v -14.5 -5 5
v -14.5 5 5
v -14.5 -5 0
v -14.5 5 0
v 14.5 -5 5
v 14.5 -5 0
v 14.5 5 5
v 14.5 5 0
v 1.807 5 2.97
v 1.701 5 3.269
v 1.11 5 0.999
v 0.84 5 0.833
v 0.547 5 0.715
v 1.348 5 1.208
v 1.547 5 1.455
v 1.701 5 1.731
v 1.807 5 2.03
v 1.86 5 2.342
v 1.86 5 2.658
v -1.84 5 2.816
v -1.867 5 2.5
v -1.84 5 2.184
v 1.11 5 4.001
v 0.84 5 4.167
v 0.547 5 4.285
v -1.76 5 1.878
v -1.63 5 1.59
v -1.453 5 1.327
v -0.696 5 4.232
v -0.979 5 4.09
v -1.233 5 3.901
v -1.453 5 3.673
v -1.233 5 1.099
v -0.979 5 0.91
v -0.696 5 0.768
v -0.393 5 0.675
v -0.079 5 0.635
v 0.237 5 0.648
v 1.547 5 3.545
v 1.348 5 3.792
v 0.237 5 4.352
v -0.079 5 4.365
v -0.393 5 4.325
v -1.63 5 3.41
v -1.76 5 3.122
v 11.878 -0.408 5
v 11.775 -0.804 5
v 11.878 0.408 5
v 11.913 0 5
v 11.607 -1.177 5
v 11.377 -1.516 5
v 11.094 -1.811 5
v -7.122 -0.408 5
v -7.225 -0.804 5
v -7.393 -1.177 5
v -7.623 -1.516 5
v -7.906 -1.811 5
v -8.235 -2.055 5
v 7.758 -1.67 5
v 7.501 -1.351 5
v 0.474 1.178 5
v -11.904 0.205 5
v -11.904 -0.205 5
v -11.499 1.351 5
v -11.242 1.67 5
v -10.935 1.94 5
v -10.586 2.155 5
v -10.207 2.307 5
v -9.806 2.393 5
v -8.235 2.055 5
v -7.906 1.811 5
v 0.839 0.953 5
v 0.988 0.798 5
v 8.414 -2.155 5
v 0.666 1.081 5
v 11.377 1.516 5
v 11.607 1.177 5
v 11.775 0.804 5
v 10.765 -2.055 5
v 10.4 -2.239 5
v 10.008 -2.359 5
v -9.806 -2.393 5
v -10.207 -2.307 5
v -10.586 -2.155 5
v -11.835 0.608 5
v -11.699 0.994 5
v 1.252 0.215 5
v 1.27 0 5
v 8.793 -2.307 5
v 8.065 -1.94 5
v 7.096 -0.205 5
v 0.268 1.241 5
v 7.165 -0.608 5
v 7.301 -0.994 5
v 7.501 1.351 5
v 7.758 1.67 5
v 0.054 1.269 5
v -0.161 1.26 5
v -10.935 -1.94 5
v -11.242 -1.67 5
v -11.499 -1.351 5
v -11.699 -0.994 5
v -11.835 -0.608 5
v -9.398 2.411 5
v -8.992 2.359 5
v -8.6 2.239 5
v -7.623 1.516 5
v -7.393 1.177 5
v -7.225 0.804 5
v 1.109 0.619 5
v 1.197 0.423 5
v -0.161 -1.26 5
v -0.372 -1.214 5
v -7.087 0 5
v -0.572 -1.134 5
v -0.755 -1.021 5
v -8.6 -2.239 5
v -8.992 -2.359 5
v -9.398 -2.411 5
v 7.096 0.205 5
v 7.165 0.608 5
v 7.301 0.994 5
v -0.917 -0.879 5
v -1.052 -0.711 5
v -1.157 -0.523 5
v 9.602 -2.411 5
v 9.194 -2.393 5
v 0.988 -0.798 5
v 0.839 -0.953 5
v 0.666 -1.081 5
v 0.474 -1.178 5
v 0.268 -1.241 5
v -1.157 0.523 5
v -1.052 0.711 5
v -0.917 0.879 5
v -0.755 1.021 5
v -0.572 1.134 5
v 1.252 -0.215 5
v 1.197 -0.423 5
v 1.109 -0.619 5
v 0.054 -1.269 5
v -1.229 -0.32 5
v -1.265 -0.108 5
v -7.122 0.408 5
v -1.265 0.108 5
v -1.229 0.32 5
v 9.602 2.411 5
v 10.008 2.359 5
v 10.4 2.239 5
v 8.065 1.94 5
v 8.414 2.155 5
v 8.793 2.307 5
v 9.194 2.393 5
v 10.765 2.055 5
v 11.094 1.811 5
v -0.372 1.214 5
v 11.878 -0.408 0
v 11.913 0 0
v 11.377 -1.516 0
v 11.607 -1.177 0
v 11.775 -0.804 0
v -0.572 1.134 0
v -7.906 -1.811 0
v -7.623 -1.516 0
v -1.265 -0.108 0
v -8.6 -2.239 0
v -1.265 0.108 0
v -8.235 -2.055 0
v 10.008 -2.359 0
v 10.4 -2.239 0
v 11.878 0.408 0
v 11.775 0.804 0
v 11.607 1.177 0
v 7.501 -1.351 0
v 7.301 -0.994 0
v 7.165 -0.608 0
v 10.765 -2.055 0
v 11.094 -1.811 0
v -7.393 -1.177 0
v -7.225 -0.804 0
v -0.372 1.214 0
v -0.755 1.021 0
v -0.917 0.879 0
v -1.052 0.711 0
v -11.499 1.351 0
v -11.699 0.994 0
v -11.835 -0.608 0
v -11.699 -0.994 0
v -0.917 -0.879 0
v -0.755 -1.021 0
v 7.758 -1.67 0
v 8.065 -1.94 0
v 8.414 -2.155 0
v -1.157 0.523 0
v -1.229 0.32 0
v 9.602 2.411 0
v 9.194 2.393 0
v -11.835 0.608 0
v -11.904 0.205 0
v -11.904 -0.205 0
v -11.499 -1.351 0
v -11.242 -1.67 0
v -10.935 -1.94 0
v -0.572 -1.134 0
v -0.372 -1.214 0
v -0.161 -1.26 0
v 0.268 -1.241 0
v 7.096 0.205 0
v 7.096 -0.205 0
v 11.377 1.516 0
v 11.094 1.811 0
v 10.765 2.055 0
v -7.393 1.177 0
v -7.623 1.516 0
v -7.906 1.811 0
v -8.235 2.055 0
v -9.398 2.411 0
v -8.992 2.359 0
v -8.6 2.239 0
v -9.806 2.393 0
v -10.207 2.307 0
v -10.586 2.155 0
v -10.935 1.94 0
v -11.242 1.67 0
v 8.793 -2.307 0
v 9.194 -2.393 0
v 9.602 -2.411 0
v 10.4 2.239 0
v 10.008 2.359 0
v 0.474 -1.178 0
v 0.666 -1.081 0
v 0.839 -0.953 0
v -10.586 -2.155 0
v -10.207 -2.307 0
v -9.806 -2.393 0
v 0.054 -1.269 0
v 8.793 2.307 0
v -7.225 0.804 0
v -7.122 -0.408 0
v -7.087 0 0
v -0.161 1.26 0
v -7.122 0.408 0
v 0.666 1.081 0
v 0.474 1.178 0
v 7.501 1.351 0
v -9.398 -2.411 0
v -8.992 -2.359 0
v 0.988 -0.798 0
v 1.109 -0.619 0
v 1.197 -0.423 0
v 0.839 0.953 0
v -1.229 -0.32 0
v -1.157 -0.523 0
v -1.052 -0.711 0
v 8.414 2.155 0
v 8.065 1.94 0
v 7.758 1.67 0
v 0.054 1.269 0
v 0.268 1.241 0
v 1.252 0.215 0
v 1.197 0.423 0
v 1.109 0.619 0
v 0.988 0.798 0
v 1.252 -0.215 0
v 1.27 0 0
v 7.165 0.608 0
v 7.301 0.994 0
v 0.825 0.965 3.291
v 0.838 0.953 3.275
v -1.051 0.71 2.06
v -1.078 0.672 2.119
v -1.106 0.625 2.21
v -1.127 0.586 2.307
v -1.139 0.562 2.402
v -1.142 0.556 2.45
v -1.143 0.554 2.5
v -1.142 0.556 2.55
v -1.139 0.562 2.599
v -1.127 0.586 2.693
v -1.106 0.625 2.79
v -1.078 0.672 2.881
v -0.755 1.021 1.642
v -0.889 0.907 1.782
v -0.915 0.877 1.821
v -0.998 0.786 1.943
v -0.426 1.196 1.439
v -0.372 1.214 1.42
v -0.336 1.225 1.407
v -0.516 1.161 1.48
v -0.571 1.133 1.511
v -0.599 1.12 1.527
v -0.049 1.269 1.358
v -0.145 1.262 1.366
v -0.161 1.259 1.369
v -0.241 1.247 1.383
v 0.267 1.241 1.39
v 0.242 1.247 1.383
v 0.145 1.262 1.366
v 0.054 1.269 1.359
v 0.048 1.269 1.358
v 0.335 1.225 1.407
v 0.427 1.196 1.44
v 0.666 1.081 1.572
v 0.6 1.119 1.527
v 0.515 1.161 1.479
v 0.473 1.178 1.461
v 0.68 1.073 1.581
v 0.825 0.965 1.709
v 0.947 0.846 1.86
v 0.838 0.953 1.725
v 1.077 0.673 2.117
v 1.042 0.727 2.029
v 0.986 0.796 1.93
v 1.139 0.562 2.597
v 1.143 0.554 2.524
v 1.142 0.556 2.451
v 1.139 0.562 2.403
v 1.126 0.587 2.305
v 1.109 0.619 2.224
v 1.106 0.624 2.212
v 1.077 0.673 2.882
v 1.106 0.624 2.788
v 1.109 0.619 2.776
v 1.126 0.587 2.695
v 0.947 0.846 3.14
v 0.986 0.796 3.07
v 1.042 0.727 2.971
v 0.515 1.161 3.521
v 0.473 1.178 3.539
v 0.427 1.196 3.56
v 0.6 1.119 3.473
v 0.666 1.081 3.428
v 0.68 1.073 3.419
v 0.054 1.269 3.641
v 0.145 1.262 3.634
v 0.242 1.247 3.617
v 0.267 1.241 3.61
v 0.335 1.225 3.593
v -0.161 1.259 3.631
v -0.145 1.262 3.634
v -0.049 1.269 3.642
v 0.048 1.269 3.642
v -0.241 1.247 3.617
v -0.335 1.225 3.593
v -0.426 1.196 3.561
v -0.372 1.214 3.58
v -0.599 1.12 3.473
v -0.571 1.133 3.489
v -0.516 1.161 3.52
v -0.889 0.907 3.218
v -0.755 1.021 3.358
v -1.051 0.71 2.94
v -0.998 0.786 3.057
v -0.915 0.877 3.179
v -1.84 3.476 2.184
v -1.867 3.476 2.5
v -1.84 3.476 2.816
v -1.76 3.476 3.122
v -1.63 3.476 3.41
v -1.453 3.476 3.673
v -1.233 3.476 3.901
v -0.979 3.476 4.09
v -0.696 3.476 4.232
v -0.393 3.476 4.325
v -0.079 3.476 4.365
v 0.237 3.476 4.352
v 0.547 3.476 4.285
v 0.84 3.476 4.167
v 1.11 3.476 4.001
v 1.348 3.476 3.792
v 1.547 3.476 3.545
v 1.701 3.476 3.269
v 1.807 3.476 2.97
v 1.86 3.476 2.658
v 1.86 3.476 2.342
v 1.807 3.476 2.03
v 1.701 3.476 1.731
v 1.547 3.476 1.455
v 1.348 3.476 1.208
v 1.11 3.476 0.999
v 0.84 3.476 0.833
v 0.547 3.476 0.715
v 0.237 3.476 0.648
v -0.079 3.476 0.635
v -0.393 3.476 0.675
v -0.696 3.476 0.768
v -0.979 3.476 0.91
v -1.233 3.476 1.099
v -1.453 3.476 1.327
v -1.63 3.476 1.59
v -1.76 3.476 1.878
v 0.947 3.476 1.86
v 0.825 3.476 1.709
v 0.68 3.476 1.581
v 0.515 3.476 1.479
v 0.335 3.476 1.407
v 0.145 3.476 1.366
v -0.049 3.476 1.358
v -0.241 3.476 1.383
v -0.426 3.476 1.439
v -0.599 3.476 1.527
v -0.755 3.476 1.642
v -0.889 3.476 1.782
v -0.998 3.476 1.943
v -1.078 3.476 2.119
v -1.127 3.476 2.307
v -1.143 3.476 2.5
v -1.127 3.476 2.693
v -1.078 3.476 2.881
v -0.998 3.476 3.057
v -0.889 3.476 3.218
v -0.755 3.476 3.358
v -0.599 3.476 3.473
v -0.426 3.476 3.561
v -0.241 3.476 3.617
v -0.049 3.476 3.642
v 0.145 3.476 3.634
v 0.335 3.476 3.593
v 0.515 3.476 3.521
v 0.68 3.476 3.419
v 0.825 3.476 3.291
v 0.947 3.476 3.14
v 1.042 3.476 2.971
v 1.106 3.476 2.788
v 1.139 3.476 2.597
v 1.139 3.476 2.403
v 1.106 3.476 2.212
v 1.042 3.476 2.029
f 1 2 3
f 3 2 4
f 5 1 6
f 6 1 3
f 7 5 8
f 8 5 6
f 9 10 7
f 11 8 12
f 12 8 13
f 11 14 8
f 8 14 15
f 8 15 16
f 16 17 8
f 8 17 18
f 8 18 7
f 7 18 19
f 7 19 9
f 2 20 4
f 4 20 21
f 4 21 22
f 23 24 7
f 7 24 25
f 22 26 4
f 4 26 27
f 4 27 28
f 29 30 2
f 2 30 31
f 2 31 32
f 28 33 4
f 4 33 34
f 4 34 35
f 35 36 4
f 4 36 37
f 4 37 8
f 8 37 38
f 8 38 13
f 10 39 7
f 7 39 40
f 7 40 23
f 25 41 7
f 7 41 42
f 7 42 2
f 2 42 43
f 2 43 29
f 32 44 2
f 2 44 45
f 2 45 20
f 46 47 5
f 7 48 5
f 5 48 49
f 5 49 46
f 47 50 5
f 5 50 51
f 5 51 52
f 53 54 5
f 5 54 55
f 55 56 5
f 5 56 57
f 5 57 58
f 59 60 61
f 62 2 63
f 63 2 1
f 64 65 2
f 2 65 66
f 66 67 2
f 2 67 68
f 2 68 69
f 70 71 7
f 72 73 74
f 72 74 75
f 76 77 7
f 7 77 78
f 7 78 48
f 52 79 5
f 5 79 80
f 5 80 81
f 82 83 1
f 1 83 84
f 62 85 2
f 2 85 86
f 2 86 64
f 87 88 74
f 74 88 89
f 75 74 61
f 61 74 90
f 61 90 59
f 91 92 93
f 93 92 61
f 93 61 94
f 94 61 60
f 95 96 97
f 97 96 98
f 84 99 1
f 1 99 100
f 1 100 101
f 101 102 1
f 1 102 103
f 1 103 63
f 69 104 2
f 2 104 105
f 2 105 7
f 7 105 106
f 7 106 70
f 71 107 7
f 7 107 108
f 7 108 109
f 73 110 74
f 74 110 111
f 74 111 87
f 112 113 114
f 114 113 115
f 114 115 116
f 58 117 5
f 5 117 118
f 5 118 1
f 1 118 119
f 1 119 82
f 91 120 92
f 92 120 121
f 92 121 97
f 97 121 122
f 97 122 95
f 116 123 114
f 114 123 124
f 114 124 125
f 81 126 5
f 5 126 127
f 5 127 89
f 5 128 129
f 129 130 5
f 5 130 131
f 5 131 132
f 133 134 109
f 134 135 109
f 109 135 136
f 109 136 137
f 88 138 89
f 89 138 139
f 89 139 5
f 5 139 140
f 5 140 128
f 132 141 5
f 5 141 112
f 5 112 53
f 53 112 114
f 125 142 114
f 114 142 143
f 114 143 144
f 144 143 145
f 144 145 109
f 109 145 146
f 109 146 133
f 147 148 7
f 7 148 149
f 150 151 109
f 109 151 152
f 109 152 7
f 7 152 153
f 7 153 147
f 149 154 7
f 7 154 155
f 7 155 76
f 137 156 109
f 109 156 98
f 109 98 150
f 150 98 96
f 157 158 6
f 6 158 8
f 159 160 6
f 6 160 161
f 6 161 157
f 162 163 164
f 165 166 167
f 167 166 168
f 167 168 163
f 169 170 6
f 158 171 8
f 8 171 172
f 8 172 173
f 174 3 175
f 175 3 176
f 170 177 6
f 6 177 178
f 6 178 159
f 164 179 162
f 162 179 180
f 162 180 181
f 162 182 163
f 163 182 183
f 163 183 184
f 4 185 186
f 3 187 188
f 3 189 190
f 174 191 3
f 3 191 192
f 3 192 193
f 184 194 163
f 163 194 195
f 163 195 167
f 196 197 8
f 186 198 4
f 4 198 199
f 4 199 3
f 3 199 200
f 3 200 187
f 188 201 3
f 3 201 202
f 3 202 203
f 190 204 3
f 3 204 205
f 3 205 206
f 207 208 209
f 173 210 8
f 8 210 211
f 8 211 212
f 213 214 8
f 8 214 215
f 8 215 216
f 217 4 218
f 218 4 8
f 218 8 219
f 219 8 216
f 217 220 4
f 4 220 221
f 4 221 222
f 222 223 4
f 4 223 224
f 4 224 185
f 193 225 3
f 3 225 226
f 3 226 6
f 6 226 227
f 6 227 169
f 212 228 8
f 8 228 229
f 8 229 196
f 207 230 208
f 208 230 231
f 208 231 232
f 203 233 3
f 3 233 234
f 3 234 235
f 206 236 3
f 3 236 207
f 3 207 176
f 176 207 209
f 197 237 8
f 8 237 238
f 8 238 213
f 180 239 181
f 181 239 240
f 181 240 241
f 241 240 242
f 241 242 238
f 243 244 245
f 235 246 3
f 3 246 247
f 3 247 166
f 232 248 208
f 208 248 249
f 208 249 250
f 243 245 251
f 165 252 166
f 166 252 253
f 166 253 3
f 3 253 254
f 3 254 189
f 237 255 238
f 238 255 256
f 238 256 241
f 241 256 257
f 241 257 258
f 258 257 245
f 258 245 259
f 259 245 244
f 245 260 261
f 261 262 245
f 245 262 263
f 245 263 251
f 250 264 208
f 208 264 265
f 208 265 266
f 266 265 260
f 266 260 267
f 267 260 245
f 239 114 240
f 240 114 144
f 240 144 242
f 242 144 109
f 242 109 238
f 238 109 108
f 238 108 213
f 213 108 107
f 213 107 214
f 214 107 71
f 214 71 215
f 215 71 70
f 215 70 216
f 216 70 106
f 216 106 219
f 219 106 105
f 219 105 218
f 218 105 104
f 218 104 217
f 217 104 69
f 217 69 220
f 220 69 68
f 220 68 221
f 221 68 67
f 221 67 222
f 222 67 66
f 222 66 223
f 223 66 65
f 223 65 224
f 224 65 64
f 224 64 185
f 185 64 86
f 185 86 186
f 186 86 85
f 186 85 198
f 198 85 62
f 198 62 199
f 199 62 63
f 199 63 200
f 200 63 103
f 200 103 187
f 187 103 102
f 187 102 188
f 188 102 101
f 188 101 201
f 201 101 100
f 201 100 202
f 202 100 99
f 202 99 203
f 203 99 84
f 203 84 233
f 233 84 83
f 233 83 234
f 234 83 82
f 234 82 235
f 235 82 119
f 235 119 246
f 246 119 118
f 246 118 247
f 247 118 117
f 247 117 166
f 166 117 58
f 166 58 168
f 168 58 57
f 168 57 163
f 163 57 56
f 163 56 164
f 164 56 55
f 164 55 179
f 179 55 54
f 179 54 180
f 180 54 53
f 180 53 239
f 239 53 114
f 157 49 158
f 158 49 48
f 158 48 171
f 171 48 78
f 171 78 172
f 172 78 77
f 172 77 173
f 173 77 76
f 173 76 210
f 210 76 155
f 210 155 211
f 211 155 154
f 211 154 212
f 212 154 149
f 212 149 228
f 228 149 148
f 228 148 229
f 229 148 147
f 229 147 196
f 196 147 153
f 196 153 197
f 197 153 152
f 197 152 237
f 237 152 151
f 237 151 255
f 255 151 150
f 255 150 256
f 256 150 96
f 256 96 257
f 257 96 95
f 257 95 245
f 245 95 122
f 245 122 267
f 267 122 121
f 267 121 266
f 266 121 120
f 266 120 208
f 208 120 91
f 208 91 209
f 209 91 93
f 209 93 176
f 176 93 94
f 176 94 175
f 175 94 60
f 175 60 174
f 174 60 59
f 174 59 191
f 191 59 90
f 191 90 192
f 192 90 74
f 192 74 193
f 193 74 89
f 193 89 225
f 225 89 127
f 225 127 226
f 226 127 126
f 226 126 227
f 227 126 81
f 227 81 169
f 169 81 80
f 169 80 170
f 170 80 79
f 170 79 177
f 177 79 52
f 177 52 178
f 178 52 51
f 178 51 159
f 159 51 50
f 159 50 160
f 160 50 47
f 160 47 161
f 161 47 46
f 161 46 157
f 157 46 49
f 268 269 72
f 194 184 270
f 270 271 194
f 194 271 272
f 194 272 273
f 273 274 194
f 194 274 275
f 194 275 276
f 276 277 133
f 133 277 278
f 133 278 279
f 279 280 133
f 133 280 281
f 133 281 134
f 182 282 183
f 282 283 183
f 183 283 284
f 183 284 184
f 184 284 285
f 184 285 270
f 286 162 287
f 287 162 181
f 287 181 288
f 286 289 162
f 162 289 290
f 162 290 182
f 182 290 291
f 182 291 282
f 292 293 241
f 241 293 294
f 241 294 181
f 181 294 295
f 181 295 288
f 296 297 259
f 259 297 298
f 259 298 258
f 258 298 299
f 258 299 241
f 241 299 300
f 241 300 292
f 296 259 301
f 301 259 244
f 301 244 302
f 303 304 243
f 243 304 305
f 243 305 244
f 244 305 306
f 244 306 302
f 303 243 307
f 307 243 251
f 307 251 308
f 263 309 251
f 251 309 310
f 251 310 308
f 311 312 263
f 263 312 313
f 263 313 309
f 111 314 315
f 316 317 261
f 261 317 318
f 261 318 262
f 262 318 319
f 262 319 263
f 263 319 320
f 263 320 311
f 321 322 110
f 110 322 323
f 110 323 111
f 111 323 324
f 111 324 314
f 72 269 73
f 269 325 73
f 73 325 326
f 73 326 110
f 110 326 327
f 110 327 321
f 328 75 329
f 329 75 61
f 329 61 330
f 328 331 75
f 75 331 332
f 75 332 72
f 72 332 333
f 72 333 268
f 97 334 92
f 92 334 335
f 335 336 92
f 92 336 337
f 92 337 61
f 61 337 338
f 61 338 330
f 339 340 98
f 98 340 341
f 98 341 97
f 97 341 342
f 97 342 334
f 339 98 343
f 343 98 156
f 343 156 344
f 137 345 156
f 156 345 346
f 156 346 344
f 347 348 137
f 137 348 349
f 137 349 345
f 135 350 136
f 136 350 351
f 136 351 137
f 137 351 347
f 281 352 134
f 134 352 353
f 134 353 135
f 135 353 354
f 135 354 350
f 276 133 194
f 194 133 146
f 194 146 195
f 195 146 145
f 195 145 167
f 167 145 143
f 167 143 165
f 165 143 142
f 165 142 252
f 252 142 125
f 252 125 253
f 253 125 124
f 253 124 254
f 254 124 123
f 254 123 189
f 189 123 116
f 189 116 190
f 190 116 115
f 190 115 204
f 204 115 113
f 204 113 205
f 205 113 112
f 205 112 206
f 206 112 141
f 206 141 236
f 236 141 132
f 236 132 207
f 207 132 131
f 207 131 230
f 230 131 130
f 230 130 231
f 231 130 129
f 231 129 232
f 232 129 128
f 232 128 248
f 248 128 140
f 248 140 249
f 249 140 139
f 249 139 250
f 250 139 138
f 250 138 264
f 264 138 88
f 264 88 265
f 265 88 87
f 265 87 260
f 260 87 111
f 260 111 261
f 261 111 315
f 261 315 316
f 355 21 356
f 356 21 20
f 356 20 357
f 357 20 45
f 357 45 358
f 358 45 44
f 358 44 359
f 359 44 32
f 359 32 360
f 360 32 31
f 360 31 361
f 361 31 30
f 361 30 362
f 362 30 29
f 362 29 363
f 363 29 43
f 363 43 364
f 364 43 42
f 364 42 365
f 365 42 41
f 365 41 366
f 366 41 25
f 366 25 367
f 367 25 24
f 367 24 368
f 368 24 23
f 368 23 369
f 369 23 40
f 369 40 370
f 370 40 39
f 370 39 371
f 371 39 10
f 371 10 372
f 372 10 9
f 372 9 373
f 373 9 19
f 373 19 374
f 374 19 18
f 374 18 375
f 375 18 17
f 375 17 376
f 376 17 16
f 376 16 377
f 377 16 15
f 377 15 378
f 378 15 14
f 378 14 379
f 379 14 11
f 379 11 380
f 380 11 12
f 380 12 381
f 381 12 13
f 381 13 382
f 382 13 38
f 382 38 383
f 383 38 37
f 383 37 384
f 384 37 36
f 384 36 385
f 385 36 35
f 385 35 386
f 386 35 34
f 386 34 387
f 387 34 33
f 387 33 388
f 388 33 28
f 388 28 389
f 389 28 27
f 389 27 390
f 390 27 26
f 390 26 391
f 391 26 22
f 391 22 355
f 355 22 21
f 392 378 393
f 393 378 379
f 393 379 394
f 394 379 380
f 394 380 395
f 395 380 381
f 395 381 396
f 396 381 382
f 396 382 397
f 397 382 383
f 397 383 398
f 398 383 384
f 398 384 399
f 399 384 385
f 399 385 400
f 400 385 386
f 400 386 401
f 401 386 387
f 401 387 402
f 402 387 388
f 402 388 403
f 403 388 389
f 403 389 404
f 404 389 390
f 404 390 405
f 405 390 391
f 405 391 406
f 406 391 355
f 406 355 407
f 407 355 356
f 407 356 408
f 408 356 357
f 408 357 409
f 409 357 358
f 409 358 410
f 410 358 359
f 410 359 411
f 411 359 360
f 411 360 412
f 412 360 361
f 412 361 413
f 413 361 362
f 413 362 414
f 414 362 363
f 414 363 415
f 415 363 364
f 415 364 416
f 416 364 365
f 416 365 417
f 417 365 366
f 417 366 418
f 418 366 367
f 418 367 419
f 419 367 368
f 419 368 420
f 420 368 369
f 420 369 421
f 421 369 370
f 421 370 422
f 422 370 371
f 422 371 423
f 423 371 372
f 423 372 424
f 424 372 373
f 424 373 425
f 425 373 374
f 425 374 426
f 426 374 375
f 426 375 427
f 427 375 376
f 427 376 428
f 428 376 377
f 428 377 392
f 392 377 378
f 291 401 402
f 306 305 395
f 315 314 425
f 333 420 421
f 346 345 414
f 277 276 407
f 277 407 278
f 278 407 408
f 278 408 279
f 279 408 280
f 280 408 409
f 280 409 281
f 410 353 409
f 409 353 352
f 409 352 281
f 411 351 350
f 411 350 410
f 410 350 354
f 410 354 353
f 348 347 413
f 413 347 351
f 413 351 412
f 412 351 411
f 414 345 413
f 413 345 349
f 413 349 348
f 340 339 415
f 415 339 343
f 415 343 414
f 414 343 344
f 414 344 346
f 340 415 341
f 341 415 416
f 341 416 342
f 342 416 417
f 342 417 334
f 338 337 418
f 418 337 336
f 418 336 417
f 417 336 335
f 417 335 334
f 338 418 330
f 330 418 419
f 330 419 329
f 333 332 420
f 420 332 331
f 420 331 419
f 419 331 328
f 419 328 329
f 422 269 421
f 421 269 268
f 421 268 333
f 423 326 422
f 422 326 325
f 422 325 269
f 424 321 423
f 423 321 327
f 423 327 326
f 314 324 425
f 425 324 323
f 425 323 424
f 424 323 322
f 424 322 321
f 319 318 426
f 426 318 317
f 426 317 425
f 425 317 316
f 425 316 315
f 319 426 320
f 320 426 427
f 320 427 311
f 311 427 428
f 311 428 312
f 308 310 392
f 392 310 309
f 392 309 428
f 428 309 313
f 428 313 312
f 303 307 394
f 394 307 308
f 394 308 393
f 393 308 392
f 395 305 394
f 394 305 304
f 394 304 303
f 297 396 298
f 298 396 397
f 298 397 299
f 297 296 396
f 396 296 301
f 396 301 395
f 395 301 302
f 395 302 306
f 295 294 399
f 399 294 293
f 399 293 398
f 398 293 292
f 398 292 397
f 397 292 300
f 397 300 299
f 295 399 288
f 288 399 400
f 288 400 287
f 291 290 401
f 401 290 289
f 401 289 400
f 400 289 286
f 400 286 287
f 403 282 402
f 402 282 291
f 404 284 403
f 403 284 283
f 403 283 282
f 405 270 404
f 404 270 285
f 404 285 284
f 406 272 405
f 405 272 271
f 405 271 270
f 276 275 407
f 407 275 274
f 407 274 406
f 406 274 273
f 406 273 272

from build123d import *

# Parameters (mm, degrees)
SKETCH1_W               = 29
SKETCH1_H               = 10
BOSS_EXTRUDE1_DEPTH     = 5
SKETCH2_R               = 2.413
CUT_EXTRUDE1_DEPTH      = 17.132265805
SKETCH3_R               = 1.27
CUT_EXTRUDE2_DEPTH      = 17.132265805
SKETCH4_R               = 1.8669
CUT_EXTRUDE3_DEPTH      = 1.524
CUT_EXTRUDE4_REACH      = 19.524
CUT_EXTRUDE4_END_RADIUS = 1.27
SKETCH5_R               = 1.143


with BuildPart() as part:
    # Sketch1 → Boss-Extrude1 (new body)
    with BuildSketch(Plane.XY):
        Rectangle(SKETCH1_W, SKETCH1_H)
    extrude(amount=BOSS_EXTRUDE1_DEPTH)

    # Sketch2 → Cut-Extrude1 (cut, through all)
    with BuildSketch(Plane.XY.offset(5)):
        with Locations((-9.5, 0)):
            Circle(SKETCH2_R)
        with Locations((9.5, 0)):
            Circle(SKETCH2_R)
    extrude(amount=-CUT_EXTRUDE1_DEPTH, mode=Mode.SUBTRACT)

    # Sketch3 → Cut-Extrude2 (cut, through all)
    with BuildSketch(Plane.XY.offset(5)):
        Circle(SKETCH3_R)
    extrude(amount=-CUT_EXTRUDE2_DEPTH, mode=Mode.SUBTRACT)

    # Sketch4 → Cut-Extrude3 (cut)
    with BuildSketch(Plane(origin=(0, 5, 0), x_dir=(1, 0, 0), z_dir=(0, 1, 0))):
        with Locations(Location((0, -2.5, 0), (0, 0, 180))):
            Circle(SKETCH4_R)
    extrude(amount=-CUT_EXTRUDE3_DEPTH, mode=Mode.SUBTRACT)

    # Cut-Extrude4: up to this cylinder (the profile starts outside it)
    cut_extrude4_end = Plane(origin=(0, 0, 2.5), z_dir=(0, 0, 1)) * Cylinder(CUT_EXTRUDE4_END_RADIUS, 42.588, mode=Mode.PRIVATE)
    # Sketch5 → Cut-Extrude4 (cut, up to the surface)
    with BuildSketch(Plane(origin=(0, 3.476, 0), x_dir=(1, 0, 0), z_dir=(0, 1, 0)), mode=Mode.PRIVATE) as cut_extrude4_sk1:
        with Locations(Location((0, -2.5, 0), (0, 0, 180))):
            Circle(SKETCH5_R)
    cut_extrude4_tool1 = extrude(cut_extrude4_sk1.sketch, amount=-CUT_EXTRUDE4_REACH, mode=Mode.PRIVATE) - cut_extrude4_end
    add(cut_extrude4_tool1.solids().sort_by_distance((0, 3.476, 2.5))[0], mode=Mode.SUBTRACT)


solid = part.part
